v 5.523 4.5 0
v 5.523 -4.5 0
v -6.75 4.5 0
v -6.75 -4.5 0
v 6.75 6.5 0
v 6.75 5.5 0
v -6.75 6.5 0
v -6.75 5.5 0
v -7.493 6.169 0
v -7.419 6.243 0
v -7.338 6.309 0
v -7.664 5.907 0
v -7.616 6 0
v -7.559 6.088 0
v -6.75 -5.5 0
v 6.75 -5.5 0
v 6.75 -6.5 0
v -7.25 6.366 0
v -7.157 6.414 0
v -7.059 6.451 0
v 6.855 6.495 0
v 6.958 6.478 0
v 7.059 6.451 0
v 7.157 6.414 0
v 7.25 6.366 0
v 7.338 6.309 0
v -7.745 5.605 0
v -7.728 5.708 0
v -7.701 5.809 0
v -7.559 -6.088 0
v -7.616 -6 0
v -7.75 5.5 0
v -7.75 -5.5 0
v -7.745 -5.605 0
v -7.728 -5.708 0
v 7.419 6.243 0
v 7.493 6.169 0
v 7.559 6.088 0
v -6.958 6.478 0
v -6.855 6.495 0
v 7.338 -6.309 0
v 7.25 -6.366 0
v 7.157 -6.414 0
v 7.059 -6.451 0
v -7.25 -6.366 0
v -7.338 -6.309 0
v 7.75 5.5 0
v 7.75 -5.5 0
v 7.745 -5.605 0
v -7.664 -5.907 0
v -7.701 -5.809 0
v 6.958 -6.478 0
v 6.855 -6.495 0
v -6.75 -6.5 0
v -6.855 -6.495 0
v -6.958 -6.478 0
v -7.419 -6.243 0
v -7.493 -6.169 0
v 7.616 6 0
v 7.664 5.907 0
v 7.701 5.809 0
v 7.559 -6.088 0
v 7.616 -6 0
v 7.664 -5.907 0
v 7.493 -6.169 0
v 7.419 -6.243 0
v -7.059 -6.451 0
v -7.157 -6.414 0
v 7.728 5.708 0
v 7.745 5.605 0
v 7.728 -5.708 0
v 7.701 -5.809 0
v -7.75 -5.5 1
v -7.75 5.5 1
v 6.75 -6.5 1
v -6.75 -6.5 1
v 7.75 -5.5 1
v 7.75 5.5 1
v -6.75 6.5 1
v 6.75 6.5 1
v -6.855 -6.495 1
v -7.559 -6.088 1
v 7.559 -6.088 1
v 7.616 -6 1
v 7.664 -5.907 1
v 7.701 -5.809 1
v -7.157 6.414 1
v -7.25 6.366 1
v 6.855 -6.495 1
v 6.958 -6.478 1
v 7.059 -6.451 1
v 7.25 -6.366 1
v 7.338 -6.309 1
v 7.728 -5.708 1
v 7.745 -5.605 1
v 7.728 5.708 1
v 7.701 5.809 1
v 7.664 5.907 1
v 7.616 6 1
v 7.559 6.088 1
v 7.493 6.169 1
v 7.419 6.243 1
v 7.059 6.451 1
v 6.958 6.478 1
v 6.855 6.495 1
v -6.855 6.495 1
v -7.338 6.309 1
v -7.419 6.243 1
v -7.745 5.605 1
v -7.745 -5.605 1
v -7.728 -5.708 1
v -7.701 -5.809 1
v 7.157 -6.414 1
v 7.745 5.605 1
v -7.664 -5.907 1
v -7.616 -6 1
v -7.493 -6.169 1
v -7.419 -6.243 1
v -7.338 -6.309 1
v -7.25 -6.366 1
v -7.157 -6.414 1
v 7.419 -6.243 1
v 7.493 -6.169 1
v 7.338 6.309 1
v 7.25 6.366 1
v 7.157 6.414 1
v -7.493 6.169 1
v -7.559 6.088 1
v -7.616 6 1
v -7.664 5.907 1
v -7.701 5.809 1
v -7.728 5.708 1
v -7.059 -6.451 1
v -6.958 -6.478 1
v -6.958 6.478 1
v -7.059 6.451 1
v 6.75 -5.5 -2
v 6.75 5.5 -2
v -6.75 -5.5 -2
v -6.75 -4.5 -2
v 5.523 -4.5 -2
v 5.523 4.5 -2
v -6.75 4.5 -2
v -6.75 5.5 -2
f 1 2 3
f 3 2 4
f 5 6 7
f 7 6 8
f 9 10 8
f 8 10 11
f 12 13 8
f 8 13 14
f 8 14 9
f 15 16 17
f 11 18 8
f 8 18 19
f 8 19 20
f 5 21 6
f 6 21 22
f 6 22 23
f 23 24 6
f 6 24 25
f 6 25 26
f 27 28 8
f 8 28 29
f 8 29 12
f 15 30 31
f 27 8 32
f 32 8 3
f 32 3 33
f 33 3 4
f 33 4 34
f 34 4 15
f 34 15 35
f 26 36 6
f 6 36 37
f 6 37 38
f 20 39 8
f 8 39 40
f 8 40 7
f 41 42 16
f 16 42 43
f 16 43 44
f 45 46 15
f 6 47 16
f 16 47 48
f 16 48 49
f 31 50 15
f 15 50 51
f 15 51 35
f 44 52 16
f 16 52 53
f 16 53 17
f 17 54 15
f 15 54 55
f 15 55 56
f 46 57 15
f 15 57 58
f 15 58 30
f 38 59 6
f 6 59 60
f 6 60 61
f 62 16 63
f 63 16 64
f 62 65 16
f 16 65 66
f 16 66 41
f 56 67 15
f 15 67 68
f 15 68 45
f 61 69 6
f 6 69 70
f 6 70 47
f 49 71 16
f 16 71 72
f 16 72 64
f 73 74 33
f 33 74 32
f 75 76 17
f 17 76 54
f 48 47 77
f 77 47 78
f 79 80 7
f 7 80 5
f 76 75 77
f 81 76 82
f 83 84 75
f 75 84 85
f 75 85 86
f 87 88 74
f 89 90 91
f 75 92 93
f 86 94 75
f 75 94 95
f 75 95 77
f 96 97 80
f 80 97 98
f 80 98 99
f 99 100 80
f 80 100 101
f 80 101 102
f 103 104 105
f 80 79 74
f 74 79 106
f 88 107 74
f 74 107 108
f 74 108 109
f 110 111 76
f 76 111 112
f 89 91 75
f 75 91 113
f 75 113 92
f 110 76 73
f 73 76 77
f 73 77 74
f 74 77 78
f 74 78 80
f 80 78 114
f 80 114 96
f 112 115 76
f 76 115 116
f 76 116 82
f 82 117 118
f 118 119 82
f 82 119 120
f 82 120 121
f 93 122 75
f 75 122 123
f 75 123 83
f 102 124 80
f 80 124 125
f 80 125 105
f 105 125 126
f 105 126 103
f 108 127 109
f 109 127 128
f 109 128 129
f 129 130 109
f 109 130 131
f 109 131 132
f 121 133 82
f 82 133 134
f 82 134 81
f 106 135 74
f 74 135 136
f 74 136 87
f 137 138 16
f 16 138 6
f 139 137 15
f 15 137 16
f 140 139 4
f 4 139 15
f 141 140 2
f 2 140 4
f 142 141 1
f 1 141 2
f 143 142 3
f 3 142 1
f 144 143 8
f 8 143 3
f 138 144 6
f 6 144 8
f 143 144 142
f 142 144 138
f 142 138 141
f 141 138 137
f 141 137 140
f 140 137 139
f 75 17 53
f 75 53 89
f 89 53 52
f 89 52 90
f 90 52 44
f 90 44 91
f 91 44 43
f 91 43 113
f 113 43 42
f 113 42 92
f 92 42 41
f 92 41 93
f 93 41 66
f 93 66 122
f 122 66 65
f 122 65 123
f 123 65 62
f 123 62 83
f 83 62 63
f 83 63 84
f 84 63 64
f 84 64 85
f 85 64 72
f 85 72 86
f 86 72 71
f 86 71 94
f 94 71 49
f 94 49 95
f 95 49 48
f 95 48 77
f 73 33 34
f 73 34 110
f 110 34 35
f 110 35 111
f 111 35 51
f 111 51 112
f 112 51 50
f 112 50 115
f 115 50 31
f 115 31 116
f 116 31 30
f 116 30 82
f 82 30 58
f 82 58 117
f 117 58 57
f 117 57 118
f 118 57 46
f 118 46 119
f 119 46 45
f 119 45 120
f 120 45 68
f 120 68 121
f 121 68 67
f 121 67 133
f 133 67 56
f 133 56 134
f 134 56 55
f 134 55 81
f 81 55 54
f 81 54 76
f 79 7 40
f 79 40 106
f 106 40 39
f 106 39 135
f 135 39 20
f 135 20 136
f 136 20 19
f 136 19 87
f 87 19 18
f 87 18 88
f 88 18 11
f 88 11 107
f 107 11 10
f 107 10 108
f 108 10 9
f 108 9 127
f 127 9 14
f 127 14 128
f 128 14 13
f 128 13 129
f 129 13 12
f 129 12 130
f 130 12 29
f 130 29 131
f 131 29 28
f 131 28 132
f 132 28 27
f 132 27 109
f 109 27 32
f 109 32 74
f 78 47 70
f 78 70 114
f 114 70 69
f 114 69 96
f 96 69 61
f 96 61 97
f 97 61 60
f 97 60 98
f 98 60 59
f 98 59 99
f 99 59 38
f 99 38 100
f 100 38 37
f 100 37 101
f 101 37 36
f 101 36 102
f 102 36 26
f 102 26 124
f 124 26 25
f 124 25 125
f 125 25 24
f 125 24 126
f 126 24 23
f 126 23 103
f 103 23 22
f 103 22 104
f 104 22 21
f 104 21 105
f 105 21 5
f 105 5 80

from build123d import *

# Parameters (mm, degrees)
ESQUISSE2_W        = 15.5
ESQUISSE2_H        = 13
BOSS_EXTRU_1_DEPTH = 1
BOSS_EXTRU_2_DEPTH = 2
CONG_1_R           = 1


with BuildPart() as part:
    # Esquisse2 → Boss.-Extru.1 (new body)
    with BuildSketch(Plane.XY):
        Rectangle(ESQUISSE2_W, ESQUISSE2_H)
    extrude(amount=BOSS_EXTRU_1_DEPTH)

    # Esquisse3 → Boss.-Extru.2 (add)
    with BuildSketch(Plane(origin=(0, 0, 0), x_dir=(-1, 0, 0), z_dir=(0, 0, -1))):
        Polygon((5.522727273, -4.5), (6.75, -4.5), (6.75, -5.5), (-6.75, -5.5), (-6.75, 5.5), (6.75, 5.5), (6.75, 4.5), (5.522727273, 4.5), (-5.522727273, 4.5), (-5.522727273, -4.5), align=None)
    extrude(amount=BOSS_EXTRU_2_DEPTH)

    # Congé1
    cong_1_edges = [part.edges().sort_by_distance(p)[0] for p in [
        (-7.75, 6.5, 0.5),
        (7.75, 6.5, 0.5),
        (7.75, -6.5, 0.5),
        (-7.75, -6.5, 0.5),
    ]]
    fillet(cong_1_edges, radius=CONG_1_R)


solid = part.part
